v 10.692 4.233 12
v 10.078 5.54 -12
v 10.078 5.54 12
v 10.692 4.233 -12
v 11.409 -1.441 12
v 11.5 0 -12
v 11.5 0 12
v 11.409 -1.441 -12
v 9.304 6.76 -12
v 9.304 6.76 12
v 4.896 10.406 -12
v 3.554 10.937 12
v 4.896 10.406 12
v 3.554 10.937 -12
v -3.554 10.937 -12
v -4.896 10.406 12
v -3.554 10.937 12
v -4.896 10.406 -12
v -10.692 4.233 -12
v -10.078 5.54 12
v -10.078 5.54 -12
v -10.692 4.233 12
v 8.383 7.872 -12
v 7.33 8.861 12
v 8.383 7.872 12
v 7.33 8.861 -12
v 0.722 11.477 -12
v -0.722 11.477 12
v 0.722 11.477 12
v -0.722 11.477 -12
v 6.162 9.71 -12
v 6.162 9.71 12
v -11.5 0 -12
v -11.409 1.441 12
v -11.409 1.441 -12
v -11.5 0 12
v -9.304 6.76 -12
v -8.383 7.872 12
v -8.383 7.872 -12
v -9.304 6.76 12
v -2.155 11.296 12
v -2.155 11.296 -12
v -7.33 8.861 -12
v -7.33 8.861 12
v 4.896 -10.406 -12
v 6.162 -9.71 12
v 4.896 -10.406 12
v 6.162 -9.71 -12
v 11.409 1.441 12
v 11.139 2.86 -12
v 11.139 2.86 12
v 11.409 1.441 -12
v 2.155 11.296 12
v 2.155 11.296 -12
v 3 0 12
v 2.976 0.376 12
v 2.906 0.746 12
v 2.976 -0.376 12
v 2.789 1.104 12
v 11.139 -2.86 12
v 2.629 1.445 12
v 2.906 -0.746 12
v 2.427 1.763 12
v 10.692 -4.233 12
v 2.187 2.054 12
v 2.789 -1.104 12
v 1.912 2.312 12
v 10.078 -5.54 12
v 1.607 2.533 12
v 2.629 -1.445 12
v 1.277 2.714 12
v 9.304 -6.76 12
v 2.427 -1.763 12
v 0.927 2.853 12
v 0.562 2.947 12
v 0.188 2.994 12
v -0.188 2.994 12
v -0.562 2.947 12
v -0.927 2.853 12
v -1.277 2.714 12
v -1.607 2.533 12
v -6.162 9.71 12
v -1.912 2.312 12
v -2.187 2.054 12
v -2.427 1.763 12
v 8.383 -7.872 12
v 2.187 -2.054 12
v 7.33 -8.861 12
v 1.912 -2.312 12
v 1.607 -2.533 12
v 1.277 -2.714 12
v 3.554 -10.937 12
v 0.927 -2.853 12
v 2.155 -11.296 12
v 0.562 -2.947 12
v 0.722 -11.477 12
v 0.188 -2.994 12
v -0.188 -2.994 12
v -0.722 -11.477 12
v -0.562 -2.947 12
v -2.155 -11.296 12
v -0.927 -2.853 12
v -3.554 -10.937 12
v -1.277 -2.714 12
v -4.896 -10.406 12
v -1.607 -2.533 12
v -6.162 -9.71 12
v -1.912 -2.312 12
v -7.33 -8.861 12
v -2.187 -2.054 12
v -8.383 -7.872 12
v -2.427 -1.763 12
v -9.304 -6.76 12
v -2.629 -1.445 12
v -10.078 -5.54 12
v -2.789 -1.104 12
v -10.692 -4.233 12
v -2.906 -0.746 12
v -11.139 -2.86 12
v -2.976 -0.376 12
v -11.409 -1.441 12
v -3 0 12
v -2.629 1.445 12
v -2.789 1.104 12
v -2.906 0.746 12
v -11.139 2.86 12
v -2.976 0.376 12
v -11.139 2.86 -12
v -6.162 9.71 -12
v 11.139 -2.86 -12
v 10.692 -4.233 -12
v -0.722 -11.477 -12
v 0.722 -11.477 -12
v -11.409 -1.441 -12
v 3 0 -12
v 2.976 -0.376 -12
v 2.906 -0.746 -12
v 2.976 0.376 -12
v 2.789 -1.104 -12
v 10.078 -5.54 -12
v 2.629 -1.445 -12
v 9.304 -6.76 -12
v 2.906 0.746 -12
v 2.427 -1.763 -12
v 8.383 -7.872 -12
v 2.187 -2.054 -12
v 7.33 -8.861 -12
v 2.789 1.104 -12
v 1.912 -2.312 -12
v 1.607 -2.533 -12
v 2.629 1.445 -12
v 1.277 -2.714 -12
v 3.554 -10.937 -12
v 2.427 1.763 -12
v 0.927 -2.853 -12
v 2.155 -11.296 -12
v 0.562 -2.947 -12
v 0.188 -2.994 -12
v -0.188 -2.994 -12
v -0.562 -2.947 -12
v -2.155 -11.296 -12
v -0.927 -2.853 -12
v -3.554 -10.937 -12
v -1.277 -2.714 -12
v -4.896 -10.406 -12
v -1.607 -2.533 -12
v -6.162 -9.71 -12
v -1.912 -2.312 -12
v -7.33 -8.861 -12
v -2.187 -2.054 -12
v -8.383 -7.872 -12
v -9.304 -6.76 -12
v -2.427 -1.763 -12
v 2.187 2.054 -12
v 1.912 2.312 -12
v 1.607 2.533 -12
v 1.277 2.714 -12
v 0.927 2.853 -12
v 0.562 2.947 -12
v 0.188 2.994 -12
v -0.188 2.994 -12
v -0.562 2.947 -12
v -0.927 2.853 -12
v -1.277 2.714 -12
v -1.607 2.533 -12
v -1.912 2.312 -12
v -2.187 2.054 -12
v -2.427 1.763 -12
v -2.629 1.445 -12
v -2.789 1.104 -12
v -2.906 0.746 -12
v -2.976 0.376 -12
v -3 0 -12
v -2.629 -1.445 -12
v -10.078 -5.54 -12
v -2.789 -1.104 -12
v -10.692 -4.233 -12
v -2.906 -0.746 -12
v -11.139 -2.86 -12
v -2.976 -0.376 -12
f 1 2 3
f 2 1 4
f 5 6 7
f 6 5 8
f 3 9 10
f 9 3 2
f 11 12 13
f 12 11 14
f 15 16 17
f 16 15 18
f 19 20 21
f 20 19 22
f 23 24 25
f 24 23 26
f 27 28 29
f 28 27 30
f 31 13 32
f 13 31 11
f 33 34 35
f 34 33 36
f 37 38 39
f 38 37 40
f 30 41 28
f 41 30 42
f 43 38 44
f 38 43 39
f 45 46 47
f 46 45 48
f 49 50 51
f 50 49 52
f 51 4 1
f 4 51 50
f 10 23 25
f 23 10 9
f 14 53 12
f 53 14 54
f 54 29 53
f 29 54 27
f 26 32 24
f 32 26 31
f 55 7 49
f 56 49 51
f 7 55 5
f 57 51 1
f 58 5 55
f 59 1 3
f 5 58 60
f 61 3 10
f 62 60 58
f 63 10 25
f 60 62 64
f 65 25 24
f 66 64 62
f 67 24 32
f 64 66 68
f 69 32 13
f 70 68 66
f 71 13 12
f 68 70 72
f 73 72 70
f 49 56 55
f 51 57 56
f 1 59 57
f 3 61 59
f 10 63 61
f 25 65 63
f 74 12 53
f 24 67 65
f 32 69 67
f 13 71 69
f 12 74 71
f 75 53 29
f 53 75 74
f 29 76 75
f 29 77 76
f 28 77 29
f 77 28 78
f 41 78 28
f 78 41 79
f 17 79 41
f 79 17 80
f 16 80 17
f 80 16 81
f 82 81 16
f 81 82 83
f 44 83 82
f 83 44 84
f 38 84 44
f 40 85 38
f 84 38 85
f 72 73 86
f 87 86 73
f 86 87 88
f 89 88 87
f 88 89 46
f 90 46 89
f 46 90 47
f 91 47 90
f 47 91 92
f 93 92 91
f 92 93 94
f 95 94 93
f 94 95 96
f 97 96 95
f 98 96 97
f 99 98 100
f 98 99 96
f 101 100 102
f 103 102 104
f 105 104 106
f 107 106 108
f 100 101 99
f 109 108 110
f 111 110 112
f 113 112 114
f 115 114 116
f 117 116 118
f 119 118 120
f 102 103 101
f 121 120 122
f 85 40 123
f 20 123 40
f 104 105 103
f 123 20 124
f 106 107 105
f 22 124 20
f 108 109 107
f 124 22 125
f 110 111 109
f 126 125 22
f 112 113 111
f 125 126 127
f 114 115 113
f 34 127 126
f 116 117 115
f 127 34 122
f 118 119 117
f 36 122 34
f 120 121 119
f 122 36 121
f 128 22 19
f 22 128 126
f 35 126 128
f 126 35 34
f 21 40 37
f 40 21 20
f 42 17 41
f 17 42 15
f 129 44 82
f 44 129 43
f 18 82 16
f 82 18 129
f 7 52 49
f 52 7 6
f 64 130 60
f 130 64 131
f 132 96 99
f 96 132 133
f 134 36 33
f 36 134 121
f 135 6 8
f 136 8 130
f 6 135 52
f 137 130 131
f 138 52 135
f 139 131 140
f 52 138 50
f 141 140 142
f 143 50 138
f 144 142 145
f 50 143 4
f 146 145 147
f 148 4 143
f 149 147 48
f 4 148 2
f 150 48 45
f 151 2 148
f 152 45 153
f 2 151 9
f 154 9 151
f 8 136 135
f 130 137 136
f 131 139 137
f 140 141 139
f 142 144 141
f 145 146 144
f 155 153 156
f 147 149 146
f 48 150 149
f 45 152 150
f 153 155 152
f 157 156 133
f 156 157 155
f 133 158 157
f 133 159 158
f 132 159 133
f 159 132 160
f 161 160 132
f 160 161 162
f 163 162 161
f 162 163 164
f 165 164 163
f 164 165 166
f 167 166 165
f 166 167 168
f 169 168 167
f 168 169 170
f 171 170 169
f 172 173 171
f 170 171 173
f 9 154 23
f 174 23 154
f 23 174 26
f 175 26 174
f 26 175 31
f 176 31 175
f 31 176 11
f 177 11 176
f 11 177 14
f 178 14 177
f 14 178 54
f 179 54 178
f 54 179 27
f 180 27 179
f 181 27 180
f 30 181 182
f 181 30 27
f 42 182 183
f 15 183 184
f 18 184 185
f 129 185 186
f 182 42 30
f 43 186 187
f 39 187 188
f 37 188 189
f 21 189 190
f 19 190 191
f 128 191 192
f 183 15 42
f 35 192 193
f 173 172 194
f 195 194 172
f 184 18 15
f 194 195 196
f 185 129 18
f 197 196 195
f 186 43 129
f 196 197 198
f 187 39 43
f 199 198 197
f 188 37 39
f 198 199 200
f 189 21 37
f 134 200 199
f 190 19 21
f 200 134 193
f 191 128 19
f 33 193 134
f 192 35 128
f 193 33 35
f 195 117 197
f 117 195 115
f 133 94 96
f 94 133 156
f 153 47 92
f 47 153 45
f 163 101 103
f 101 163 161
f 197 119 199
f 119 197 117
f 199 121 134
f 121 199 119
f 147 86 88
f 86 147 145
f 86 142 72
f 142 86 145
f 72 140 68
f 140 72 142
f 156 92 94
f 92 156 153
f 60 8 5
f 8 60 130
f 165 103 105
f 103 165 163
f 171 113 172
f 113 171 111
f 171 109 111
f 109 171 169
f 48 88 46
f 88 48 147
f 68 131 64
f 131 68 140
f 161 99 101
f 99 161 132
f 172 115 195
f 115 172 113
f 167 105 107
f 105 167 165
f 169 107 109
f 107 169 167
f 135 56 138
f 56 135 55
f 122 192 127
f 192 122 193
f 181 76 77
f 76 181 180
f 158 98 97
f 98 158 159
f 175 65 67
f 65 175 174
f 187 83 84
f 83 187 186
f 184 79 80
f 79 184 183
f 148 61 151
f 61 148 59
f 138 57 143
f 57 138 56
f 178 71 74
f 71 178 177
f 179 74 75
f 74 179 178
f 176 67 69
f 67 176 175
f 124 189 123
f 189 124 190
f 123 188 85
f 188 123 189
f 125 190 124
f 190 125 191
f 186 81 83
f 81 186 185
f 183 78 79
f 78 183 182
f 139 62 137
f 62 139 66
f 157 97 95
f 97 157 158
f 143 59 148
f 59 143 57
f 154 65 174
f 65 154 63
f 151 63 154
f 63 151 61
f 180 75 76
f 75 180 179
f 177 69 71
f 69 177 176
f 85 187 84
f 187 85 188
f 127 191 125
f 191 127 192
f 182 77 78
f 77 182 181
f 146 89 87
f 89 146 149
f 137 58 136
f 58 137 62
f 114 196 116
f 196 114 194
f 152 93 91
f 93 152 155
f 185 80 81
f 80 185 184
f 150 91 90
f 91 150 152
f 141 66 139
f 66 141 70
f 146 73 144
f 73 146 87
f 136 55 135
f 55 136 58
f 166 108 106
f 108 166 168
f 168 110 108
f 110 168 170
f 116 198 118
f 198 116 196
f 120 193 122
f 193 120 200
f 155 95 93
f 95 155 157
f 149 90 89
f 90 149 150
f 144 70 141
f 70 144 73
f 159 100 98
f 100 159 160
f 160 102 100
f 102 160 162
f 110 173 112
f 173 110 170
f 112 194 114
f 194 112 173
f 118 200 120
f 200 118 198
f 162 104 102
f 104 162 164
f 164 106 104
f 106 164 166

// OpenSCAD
$fn = 50;


difference() {
	union() {
		translate(v = [0, 0, -12.0000000000]) {
			cylinder(h = 24, r = 11.5000000000);
		}
	}
	union() {
		translate(v = [0, 0, -100.0000000000]) {
			cylinder(h = 200, r = 3);
		}
	}
}
